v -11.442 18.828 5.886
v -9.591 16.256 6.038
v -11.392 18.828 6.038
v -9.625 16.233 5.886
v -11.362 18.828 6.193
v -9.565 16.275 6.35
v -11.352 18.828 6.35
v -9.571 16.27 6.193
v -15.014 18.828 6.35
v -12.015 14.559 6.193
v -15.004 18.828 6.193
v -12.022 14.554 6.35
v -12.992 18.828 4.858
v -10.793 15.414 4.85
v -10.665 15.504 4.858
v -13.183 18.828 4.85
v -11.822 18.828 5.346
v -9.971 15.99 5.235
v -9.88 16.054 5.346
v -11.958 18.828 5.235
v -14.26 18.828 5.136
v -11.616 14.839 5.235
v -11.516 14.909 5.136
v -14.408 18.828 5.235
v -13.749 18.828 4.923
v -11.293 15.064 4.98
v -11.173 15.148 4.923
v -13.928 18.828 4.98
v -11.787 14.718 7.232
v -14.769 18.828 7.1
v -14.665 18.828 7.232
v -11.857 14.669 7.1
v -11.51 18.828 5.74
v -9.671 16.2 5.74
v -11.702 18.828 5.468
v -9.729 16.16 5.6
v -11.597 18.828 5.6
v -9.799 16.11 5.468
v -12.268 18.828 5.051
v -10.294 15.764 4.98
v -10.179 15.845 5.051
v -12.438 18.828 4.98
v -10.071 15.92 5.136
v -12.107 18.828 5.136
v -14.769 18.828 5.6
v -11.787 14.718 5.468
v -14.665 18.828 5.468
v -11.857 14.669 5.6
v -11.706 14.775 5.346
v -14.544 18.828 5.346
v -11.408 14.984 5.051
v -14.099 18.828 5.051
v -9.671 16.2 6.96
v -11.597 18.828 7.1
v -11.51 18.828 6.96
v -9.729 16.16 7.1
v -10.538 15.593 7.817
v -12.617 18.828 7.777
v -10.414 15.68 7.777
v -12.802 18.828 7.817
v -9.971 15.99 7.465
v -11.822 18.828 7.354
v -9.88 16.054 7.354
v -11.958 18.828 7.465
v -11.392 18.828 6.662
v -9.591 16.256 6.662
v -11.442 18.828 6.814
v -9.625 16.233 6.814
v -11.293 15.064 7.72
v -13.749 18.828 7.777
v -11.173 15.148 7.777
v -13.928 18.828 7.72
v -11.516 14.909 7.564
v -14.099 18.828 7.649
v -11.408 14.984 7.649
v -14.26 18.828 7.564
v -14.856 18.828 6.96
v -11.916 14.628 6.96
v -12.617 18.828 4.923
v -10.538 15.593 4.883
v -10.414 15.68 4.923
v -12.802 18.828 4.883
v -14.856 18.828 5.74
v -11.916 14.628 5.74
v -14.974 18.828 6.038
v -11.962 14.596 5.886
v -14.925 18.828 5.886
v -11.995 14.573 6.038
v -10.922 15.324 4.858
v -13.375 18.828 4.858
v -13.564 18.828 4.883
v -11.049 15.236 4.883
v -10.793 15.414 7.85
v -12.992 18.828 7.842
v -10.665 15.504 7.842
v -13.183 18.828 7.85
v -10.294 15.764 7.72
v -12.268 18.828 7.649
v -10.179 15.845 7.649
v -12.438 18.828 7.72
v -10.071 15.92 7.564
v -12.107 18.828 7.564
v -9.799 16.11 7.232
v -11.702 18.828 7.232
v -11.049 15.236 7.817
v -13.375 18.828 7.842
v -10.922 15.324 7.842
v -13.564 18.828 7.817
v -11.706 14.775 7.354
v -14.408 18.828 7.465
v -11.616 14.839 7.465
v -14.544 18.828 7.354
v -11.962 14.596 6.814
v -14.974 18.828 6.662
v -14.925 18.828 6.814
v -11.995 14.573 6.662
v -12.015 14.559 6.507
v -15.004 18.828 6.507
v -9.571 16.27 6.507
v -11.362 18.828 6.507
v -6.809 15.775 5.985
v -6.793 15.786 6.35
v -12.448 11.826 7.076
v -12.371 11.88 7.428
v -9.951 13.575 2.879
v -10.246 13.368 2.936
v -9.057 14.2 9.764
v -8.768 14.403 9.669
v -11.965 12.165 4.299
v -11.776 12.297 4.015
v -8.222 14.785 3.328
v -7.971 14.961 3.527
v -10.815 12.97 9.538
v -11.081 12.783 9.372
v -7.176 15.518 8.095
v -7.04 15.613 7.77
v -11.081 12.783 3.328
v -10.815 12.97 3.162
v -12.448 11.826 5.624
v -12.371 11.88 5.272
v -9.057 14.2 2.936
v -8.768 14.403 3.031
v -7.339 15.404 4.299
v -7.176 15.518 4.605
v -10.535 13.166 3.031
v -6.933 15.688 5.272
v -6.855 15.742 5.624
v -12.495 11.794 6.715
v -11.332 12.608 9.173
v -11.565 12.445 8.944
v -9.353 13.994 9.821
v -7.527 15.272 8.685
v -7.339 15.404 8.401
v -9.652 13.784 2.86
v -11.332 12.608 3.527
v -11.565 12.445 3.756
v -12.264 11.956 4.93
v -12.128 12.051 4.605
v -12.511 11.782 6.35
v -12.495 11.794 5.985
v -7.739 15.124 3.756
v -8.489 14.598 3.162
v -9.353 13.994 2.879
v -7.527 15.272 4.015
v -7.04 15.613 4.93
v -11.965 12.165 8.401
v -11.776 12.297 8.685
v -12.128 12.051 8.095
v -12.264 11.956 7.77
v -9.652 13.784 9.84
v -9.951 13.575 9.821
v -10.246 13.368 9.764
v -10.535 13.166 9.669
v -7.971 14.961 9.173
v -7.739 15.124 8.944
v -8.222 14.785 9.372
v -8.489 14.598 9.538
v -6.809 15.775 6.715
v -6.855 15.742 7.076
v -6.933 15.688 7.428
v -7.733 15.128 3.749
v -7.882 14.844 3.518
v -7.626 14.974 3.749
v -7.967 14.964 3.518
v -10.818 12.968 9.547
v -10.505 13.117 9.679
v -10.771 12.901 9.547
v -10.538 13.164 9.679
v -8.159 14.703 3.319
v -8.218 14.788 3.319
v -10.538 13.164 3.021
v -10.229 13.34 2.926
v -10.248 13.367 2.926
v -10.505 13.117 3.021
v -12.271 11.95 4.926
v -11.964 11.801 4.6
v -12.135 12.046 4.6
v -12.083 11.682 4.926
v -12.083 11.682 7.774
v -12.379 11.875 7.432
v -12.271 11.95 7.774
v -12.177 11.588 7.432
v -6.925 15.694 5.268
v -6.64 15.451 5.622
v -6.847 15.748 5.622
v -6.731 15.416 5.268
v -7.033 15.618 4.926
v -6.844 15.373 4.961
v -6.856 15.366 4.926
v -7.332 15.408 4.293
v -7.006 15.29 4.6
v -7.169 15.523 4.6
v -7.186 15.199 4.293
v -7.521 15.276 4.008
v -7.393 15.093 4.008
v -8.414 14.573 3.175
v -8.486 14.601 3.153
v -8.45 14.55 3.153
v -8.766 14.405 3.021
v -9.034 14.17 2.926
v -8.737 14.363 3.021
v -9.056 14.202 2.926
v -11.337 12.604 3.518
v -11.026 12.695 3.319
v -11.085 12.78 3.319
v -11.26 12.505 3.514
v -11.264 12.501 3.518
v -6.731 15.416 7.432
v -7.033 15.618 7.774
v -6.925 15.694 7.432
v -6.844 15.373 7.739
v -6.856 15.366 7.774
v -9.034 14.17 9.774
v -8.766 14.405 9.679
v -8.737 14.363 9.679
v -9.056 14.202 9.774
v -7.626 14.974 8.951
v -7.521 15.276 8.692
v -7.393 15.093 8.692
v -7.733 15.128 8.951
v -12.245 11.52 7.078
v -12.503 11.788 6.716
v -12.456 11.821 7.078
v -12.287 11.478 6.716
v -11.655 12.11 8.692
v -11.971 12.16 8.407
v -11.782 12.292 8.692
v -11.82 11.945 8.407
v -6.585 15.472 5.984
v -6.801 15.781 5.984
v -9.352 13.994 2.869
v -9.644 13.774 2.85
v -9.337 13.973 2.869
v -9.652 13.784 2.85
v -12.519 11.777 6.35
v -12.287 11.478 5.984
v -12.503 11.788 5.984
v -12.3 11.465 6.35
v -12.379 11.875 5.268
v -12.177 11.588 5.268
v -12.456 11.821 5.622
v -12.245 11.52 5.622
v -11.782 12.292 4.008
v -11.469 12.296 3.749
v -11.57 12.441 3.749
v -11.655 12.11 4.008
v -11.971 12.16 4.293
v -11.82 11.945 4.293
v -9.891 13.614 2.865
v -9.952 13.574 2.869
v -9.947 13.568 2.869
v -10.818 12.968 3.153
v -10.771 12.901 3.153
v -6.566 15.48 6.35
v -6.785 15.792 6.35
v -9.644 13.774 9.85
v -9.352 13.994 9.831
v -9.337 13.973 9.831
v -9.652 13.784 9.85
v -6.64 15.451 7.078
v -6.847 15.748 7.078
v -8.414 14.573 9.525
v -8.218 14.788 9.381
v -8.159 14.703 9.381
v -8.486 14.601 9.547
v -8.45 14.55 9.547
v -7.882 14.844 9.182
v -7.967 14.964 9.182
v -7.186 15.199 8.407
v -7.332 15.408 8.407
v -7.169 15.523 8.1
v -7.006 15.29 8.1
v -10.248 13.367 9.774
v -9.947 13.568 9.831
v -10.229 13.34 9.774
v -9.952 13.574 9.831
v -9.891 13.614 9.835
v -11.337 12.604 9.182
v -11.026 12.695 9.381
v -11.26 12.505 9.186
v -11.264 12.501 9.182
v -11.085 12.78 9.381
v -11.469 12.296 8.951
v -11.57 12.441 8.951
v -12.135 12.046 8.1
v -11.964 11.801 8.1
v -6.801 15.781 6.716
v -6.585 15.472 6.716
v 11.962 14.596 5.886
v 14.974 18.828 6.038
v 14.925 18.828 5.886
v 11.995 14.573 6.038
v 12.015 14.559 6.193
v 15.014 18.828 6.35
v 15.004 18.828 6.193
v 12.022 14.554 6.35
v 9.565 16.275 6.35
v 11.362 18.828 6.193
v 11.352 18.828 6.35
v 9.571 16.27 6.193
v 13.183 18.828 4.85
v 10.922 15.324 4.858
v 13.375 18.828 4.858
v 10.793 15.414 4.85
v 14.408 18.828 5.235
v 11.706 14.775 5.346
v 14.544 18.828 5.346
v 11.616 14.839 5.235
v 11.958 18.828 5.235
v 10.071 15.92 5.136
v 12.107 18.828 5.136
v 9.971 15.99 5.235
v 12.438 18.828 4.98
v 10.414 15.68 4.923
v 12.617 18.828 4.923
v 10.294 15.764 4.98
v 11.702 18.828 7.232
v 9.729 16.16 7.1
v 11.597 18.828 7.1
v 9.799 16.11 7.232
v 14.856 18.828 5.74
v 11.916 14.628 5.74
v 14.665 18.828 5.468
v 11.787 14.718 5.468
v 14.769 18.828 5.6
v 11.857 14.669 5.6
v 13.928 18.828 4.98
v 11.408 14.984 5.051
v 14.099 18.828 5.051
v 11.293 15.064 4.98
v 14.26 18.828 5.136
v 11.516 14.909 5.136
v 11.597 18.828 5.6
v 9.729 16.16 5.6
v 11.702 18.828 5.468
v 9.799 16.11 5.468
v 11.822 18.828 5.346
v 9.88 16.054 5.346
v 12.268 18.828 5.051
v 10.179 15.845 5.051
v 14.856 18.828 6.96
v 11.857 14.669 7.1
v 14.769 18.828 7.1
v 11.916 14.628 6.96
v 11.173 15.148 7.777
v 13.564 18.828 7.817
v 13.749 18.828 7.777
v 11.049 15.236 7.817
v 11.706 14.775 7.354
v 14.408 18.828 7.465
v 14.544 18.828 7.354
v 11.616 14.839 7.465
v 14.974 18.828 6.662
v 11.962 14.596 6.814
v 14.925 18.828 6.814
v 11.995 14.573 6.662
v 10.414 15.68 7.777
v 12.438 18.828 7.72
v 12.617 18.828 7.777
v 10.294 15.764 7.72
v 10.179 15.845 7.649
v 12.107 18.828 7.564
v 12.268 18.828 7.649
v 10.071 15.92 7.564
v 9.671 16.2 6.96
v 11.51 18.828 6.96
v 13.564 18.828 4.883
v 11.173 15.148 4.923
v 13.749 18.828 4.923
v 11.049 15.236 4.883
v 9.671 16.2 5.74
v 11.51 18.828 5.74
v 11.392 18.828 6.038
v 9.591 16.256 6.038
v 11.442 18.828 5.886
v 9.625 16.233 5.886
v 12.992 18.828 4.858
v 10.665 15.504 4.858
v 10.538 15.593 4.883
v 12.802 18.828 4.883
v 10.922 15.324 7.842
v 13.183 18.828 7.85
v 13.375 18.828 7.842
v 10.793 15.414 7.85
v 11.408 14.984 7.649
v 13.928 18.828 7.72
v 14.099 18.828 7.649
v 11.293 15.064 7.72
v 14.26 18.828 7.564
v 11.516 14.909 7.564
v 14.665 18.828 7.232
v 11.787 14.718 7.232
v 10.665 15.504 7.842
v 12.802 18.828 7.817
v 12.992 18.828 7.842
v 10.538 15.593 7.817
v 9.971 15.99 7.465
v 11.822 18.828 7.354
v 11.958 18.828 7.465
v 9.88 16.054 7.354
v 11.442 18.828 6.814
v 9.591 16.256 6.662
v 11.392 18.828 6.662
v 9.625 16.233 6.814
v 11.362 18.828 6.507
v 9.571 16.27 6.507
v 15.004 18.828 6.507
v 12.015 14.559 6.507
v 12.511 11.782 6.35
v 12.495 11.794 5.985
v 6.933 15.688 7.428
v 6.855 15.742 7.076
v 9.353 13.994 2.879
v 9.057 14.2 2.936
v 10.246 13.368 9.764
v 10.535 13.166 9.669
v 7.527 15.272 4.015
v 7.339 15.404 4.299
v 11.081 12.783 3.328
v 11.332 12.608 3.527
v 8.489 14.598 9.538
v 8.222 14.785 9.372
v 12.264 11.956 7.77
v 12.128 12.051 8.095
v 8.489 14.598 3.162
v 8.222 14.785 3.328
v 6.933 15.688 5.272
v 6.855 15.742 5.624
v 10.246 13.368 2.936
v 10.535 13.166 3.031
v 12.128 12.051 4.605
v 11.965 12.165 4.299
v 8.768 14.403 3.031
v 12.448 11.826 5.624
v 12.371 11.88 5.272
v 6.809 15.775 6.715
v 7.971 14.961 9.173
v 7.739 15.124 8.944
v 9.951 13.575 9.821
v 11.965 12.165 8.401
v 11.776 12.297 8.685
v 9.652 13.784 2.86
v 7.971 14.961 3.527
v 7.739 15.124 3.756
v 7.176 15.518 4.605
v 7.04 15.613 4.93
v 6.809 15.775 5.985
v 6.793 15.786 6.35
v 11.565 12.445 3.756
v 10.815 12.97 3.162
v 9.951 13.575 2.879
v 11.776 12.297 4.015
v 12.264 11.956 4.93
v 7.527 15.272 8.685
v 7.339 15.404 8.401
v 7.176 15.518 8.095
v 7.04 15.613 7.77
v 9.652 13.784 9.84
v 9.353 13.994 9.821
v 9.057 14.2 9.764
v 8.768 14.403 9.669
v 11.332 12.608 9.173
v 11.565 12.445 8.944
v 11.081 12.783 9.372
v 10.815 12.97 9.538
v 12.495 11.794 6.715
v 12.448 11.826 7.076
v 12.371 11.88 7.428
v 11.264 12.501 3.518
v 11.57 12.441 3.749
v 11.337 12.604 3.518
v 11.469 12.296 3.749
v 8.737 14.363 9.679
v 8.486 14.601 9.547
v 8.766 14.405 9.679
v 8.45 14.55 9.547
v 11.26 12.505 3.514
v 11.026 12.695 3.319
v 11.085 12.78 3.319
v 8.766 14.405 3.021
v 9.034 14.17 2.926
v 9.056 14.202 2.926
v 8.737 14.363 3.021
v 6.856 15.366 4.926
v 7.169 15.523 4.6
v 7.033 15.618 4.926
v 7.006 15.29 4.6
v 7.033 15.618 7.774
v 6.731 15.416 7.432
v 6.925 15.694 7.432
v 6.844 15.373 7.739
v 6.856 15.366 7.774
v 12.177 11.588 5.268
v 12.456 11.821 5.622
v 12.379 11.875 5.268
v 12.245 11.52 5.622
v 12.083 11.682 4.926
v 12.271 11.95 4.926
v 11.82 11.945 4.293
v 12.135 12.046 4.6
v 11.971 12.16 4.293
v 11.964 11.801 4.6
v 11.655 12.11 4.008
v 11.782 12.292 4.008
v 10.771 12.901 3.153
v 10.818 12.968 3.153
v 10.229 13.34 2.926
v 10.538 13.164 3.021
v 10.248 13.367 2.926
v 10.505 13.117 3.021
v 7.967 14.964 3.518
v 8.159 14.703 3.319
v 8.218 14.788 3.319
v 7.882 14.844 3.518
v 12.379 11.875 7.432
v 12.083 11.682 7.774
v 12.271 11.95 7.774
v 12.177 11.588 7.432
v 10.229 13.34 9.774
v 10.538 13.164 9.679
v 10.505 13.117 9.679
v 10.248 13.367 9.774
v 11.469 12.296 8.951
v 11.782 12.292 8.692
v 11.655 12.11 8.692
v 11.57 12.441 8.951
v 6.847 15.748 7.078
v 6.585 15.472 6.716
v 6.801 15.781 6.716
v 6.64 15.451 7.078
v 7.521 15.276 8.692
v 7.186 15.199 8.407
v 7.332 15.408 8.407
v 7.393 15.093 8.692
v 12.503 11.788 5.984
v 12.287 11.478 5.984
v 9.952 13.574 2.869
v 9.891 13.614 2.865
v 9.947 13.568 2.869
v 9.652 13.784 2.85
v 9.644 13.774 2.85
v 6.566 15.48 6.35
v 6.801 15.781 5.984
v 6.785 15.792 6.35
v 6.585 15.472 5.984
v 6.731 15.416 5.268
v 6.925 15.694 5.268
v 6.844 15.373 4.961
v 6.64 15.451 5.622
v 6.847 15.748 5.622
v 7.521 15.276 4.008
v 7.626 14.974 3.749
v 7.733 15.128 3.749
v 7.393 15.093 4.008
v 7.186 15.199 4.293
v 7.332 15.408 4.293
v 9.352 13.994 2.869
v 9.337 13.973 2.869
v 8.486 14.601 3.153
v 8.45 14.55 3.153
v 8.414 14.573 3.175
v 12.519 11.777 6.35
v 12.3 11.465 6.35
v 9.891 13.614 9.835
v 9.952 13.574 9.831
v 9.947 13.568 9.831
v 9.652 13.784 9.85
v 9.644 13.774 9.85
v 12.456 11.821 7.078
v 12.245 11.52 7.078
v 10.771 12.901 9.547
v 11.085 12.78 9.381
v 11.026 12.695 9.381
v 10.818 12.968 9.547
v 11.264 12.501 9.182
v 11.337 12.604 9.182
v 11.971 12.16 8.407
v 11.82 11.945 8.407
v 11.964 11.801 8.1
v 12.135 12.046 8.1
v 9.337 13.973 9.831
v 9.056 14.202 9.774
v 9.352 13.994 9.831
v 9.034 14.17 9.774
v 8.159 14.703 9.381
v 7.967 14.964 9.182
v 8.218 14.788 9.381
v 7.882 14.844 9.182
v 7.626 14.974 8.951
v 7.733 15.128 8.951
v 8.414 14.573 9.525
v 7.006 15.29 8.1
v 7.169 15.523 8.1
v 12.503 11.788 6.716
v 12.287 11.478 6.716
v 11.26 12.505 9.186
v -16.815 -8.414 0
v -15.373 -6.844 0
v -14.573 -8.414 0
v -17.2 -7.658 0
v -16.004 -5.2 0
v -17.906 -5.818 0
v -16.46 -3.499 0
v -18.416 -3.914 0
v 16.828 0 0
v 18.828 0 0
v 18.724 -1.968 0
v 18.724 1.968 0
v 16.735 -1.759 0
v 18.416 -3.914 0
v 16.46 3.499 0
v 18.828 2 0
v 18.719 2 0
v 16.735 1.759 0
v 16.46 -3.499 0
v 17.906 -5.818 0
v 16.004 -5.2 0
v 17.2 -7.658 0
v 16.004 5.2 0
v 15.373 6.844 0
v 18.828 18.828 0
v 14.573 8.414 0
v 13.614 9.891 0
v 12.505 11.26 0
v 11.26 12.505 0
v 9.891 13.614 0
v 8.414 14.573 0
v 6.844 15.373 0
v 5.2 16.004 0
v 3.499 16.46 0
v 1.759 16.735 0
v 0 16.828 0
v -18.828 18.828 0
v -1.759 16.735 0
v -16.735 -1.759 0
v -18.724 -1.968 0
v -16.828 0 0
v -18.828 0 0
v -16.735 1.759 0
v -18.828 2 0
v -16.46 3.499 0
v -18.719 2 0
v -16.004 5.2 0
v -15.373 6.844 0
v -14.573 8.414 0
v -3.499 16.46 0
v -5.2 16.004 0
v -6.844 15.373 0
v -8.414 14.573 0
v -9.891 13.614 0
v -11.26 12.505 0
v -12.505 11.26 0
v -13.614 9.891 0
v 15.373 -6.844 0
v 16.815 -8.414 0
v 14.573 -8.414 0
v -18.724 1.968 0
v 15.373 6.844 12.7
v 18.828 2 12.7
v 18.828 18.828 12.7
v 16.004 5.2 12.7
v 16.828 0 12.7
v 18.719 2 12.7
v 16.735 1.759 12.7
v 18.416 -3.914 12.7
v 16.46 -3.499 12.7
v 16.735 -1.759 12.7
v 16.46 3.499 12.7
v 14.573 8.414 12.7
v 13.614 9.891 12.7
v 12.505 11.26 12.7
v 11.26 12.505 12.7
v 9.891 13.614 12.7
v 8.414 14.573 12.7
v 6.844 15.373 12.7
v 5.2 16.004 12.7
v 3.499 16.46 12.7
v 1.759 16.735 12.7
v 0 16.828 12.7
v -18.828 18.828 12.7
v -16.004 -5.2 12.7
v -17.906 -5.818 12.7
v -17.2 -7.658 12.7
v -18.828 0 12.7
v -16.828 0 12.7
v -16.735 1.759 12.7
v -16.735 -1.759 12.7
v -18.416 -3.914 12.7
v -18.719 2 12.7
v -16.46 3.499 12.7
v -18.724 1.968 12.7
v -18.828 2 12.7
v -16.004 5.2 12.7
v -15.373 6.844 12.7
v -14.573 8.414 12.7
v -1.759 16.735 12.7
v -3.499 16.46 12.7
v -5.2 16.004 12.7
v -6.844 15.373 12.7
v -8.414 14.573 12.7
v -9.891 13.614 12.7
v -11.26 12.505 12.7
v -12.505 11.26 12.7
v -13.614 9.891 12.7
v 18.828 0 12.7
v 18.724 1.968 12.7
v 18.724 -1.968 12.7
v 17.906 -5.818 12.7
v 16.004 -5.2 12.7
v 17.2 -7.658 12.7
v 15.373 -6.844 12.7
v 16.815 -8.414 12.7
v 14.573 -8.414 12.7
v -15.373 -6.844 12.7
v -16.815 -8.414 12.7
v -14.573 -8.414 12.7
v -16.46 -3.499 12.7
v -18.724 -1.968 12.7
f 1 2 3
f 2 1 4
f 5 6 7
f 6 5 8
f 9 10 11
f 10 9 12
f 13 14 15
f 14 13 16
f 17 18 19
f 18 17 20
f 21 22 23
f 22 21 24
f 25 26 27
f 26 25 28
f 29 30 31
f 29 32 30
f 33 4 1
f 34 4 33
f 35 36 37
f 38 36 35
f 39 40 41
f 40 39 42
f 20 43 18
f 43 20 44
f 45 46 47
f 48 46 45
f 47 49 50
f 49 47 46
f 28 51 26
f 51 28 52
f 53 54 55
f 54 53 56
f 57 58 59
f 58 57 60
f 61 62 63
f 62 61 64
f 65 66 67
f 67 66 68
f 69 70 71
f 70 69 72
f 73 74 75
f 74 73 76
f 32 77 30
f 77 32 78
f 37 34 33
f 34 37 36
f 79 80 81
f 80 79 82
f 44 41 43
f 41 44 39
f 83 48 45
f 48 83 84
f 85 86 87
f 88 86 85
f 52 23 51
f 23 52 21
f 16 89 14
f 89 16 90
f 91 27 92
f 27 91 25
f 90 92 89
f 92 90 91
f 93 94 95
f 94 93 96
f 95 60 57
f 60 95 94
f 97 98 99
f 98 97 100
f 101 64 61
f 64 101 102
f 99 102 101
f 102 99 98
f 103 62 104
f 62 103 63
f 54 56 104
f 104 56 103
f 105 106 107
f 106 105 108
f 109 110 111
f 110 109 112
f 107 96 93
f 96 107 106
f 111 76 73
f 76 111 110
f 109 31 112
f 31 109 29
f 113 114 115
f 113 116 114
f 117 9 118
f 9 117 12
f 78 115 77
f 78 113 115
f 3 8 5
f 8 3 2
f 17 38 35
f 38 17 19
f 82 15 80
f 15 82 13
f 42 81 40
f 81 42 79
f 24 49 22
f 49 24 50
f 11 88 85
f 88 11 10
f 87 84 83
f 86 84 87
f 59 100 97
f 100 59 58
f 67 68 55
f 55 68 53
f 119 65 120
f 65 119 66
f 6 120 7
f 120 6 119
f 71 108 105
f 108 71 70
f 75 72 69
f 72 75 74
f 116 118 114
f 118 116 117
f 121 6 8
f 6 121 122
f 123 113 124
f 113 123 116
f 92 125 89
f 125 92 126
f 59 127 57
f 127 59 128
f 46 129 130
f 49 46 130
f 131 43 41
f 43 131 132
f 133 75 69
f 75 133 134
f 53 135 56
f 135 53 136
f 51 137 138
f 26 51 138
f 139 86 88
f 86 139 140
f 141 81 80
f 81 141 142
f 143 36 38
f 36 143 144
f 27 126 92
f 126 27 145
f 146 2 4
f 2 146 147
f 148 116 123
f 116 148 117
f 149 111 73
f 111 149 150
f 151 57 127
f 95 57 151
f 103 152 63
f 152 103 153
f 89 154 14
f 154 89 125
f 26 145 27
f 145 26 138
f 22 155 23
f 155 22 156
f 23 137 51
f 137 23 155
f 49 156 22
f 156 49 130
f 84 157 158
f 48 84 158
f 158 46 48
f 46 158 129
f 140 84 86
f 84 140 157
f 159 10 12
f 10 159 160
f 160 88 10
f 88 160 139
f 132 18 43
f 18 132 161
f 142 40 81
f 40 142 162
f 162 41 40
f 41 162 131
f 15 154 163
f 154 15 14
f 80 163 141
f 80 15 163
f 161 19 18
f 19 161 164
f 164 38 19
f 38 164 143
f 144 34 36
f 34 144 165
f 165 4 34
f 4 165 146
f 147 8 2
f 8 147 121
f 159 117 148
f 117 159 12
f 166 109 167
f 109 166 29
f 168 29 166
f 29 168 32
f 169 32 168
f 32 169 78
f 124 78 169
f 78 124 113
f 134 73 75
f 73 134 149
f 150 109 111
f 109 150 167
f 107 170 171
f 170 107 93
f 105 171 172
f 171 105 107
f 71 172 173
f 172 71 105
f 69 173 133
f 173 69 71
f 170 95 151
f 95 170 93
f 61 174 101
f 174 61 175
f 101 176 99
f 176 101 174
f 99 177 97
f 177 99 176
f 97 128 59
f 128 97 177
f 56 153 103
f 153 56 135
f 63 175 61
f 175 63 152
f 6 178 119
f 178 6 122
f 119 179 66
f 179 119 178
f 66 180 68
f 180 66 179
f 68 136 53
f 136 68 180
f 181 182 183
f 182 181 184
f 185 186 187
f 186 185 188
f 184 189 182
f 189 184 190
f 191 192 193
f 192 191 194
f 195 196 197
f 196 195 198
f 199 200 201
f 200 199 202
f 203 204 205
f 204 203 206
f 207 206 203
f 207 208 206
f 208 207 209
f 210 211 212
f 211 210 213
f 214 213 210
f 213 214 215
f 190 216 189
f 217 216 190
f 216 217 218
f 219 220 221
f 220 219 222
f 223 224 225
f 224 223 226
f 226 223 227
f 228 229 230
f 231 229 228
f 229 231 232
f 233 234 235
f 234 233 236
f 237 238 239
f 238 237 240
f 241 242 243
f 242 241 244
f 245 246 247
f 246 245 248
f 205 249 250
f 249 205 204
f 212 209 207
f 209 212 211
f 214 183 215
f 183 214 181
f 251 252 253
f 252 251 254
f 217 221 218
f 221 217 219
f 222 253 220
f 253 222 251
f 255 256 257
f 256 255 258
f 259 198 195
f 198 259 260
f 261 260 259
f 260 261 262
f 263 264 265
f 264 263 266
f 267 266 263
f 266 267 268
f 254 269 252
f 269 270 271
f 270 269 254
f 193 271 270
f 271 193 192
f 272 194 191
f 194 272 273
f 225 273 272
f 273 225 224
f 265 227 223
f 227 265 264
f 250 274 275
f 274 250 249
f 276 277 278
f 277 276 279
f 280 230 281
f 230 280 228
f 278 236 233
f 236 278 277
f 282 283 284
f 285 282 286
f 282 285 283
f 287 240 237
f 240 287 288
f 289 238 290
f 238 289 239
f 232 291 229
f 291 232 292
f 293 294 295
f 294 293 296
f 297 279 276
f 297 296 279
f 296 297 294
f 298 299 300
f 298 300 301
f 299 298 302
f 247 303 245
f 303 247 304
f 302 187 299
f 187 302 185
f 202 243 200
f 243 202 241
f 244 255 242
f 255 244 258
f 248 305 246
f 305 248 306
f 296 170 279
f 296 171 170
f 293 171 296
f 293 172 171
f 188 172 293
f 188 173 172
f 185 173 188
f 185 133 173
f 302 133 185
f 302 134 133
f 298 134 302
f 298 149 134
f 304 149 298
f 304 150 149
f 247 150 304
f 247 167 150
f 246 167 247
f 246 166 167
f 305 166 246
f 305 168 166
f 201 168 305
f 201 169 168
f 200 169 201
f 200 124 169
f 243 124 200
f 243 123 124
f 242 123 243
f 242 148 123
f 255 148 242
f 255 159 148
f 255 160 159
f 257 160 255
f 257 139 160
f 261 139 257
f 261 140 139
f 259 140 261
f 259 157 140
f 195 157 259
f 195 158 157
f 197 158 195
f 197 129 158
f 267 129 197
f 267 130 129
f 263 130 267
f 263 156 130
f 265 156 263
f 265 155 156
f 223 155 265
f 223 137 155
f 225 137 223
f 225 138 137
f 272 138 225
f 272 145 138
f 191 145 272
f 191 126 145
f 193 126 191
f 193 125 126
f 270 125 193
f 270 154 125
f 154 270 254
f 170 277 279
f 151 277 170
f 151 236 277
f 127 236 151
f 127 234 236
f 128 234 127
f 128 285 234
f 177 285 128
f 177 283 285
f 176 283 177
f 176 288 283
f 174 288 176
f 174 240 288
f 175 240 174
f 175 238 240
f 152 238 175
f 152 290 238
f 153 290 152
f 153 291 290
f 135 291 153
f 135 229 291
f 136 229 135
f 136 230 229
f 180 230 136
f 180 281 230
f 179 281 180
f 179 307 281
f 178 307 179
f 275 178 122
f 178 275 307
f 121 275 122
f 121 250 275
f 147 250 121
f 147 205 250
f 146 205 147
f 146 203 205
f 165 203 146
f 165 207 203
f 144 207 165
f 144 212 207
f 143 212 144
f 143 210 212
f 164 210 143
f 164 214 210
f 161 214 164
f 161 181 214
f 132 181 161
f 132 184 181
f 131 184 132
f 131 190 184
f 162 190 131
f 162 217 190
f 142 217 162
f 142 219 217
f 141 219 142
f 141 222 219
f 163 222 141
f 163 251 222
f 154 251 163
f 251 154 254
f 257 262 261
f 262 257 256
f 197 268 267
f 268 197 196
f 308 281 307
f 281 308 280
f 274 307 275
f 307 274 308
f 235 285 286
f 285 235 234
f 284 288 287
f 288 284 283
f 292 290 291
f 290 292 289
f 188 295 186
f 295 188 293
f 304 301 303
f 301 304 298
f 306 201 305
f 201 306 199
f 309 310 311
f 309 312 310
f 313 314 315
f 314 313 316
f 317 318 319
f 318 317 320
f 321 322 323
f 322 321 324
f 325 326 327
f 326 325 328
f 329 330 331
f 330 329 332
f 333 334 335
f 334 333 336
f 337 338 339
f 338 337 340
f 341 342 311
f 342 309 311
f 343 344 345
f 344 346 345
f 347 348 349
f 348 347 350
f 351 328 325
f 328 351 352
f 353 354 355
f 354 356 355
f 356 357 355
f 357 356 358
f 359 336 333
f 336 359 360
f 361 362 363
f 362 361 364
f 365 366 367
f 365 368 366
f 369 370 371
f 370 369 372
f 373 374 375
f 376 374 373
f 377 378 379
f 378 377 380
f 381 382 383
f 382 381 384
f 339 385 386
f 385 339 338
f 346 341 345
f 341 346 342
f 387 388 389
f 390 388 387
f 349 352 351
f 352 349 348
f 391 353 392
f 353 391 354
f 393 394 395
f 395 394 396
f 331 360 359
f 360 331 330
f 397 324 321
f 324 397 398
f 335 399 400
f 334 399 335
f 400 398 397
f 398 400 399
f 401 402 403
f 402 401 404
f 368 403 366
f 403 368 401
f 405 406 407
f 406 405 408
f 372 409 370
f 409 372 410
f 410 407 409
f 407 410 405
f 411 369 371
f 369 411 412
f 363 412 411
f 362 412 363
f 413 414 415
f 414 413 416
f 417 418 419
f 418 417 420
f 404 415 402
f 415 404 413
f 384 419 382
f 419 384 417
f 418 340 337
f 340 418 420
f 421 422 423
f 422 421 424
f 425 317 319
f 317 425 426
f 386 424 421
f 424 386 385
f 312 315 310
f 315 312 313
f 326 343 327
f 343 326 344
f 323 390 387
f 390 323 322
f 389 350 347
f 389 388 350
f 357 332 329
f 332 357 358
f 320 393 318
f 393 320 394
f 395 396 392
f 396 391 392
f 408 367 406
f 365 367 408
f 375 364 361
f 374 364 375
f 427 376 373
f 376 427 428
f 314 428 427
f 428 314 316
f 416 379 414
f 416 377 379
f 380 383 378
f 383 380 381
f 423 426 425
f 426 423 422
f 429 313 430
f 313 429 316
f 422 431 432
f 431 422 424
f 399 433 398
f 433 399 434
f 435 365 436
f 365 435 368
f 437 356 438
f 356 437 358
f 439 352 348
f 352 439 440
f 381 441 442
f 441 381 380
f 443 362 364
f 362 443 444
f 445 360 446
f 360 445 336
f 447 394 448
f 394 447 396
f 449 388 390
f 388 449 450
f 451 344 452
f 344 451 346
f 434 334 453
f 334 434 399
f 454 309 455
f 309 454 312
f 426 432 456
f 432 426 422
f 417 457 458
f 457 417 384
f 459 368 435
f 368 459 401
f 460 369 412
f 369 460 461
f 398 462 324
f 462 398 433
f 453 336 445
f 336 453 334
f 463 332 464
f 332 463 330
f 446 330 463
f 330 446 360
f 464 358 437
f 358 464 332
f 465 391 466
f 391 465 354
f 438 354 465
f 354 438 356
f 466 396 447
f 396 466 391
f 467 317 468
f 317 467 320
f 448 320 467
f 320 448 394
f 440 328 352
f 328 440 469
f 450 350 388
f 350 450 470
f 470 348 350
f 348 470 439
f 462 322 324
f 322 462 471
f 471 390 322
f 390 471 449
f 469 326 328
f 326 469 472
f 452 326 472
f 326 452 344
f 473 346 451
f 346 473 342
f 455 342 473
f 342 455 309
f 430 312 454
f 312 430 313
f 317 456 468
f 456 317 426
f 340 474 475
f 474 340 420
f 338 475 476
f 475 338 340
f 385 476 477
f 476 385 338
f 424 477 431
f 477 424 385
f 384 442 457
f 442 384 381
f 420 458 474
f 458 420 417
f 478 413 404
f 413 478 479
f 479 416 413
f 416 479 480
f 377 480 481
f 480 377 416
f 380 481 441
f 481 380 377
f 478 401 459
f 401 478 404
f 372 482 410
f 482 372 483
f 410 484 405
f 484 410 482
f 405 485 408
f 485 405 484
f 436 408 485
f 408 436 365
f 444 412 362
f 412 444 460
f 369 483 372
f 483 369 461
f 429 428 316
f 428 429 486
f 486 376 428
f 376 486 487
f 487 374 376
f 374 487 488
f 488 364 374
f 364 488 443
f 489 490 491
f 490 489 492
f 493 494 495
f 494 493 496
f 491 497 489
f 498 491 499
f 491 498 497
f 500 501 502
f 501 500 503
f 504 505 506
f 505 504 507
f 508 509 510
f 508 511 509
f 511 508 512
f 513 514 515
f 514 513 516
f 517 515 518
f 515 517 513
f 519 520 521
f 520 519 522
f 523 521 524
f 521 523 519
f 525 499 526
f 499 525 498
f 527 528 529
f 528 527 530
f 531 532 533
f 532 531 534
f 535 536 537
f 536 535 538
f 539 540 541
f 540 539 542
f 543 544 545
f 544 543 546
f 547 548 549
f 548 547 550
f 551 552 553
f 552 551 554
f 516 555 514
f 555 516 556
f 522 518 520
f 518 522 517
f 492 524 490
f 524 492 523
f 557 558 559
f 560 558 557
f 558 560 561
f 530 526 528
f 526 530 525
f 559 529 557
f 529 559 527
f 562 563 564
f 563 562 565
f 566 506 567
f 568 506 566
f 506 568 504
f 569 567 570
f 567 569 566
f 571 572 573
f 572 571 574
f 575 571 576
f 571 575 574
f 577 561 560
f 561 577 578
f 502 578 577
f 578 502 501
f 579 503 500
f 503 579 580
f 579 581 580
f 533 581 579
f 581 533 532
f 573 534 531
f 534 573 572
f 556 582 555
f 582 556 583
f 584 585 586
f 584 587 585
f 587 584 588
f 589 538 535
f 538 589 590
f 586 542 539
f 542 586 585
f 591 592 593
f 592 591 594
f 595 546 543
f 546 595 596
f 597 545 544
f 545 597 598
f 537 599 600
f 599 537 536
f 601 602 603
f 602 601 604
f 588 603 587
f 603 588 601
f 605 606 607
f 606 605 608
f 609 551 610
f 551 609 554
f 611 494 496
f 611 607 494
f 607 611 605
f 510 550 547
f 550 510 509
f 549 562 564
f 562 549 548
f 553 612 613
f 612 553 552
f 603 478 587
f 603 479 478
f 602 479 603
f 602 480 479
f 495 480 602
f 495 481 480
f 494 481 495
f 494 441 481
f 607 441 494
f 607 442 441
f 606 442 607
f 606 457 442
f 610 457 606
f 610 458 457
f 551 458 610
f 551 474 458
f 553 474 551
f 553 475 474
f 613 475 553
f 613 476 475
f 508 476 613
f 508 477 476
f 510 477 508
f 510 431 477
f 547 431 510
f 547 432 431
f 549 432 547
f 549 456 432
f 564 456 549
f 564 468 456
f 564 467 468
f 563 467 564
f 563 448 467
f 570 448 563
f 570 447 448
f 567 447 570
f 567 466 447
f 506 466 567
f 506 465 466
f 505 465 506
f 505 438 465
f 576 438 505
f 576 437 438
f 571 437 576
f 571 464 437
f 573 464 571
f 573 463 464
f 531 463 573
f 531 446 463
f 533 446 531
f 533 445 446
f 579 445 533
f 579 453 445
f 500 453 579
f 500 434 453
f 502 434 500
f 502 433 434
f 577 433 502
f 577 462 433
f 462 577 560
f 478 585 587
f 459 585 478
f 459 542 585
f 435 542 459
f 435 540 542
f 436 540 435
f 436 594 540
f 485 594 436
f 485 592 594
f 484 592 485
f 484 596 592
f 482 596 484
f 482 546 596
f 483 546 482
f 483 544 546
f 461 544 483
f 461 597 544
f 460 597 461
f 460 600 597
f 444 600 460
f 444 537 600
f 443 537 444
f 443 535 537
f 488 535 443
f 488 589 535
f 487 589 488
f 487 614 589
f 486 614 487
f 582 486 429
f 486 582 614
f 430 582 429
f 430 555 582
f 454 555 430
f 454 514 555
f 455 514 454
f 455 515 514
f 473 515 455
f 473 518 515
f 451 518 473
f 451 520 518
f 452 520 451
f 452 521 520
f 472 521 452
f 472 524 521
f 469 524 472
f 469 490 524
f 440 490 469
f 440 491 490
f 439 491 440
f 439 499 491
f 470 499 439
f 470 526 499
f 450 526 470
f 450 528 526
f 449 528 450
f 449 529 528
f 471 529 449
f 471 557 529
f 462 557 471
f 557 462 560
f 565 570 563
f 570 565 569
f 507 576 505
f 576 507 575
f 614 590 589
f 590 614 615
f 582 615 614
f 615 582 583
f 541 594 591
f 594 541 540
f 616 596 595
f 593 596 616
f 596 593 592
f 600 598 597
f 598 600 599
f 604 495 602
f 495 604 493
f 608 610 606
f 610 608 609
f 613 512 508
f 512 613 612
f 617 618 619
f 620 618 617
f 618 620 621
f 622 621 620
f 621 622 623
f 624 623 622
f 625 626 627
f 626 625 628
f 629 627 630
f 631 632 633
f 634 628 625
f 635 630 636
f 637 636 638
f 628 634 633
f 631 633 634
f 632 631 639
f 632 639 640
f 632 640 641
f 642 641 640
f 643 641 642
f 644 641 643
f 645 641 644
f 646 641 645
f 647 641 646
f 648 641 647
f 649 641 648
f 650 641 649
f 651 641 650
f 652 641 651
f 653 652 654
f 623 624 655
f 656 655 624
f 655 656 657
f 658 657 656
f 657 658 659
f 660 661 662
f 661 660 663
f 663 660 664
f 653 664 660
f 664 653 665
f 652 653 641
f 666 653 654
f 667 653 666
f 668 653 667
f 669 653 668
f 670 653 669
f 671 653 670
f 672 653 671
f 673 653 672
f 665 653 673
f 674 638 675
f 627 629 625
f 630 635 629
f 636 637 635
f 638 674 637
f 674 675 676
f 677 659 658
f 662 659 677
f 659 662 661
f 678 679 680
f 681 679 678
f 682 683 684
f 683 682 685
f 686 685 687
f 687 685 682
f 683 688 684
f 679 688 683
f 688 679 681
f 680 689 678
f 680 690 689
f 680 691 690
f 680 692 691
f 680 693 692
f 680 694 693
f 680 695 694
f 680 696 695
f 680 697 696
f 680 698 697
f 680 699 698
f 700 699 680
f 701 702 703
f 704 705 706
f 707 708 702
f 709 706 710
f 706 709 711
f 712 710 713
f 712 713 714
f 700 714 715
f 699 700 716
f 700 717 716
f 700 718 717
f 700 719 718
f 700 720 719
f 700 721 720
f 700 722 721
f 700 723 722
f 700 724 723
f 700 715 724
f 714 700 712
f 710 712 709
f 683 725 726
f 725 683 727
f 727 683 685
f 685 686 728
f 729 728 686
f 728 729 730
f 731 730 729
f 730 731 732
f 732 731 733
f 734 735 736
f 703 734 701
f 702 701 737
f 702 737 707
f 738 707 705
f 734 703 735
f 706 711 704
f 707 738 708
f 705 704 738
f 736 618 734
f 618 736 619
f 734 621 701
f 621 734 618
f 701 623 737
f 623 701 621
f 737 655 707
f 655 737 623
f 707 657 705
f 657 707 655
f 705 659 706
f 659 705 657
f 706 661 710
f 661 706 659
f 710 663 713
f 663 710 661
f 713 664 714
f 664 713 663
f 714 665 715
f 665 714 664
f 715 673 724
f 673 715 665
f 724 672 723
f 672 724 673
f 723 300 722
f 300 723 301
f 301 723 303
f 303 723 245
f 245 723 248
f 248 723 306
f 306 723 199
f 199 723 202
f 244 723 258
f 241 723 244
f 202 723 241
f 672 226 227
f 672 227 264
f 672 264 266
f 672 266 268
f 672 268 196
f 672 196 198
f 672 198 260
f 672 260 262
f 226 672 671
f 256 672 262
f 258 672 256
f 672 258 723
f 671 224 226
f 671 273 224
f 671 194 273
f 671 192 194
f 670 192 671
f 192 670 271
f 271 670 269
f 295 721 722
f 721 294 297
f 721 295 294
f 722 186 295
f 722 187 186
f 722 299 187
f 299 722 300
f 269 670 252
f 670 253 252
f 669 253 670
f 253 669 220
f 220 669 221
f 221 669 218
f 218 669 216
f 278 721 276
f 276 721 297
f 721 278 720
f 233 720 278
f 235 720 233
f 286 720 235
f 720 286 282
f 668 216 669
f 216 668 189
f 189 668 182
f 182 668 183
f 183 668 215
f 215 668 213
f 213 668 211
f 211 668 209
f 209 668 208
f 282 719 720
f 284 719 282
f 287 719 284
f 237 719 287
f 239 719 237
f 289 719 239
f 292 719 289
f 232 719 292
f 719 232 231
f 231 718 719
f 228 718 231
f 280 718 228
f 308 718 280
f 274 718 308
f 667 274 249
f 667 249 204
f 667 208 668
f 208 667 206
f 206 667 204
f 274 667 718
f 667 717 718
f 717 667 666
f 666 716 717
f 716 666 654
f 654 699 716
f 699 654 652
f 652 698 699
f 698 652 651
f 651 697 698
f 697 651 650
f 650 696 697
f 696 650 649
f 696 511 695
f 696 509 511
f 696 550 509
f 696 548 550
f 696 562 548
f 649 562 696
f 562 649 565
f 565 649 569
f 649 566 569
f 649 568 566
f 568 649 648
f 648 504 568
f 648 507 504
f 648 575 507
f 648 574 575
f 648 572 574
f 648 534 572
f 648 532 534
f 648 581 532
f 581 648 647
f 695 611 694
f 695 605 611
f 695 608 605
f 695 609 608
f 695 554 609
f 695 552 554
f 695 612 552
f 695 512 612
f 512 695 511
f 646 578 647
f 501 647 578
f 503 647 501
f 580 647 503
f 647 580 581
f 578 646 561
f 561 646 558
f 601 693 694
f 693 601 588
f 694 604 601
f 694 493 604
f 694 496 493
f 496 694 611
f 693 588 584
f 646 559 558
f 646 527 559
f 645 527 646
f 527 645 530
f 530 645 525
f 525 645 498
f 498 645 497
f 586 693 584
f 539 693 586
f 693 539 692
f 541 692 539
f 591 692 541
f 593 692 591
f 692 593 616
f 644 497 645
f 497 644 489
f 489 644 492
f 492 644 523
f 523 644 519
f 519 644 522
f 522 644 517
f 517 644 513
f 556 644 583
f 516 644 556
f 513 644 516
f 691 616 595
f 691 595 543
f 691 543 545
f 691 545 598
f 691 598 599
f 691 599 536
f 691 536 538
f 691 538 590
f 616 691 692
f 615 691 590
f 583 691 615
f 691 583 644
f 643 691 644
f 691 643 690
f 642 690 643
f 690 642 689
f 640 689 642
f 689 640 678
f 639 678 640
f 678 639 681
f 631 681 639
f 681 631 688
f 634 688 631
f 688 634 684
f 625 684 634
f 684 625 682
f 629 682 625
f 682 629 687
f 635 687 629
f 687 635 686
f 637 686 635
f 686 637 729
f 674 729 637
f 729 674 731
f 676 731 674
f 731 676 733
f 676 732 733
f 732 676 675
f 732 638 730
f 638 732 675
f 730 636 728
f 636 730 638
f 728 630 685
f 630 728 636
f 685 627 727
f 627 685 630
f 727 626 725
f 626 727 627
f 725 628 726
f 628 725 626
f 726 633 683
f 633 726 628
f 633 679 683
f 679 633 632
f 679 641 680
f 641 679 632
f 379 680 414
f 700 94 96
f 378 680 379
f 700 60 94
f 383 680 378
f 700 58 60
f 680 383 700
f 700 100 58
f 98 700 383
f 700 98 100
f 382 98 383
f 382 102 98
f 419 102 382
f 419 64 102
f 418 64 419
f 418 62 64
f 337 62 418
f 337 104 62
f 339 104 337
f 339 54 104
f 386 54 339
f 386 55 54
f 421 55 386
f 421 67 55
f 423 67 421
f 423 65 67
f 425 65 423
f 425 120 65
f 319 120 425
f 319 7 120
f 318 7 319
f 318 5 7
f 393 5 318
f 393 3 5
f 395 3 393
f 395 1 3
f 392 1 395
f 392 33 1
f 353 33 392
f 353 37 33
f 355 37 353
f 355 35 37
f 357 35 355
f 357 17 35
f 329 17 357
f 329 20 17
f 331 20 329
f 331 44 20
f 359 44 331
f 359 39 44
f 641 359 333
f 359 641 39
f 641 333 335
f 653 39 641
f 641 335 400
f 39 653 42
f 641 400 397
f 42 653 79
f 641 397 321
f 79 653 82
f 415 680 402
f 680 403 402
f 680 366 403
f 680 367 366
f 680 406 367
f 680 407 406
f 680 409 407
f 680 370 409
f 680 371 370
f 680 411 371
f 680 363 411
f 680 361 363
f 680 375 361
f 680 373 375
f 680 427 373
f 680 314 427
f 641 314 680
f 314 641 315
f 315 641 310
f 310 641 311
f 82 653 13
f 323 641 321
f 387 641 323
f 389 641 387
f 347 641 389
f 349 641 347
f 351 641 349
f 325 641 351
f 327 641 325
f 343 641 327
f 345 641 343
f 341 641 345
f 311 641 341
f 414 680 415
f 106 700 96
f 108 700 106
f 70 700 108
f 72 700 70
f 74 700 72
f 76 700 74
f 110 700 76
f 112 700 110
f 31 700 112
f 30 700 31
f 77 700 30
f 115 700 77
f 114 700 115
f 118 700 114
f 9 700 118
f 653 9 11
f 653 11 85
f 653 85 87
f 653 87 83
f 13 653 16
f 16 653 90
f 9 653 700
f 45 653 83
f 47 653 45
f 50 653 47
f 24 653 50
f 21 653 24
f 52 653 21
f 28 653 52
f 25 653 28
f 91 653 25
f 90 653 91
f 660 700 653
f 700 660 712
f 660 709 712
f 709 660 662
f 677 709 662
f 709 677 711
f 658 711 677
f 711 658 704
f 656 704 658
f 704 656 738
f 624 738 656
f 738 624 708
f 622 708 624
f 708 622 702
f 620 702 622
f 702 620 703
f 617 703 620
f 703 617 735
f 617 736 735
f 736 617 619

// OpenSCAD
mm = 1;
in = 25.4*mm;

clip_height = 1/2*in;
pendulum_rad = 1.325*in/2; // MADE-UP NUMBER

wall = 2*mm;

hole_rad = 1.5*mm;  
hole_depth = 1.25*in;
countersink_rad = 3.5*mm;  
hole_angle = 35;
eps=0.01;
$fn=60;
module clip(){
    linear_extrude(height=clip_height)
    difference() {
        union(){
            circle(pendulum_rad+wall);
            translate([-pendulum_rad-wall,wall])
            square([2*pendulum_rad+2*wall,pendulum_rad]);
    
        }
        union(){
            circle(pendulum_rad);       
            translate([-pendulum_rad,-3/2*pendulum_rad])
            square([2*pendulum_rad,pendulum_rad]);
         }
           
    }
}

module screw() {
    union(){
        cylinder(r=hole_rad,h=hole_depth);
        cylinder(r1=countersink_rad,r2=0,h=countersink_rad);
        translate([0,0,-countersink_rad+eps])
        cylinder(r=countersink_rad,h=countersink_rad);
    }
}

module anglebracket() {
    translate([0,pendulum_rad+wall,0])
    color("red")
    translate([2*in,0,0])
    rotate([0,-90,0])
    linear_extrude(h=4*in)
    polygon([[0,0],[0.75*in,0],[0.95*in,0.2*in],
            [0.2*in,0.95*in],[0,0.75*in], [0,0]]);
    
}


module clip_with_holes() {
    difference() {
        union(){
            clip();
            //anglebracket(); // debug

        }
        for(hole_rotate=[hole_angle, -hole_angle]) {
            rotate([0,0,hole_rotate])
            translate([0,pendulum_rad-eps, clip_height/2])
            rotate([-90,0,0])
            screw();
        }
    }
}





clip_with_holes();
